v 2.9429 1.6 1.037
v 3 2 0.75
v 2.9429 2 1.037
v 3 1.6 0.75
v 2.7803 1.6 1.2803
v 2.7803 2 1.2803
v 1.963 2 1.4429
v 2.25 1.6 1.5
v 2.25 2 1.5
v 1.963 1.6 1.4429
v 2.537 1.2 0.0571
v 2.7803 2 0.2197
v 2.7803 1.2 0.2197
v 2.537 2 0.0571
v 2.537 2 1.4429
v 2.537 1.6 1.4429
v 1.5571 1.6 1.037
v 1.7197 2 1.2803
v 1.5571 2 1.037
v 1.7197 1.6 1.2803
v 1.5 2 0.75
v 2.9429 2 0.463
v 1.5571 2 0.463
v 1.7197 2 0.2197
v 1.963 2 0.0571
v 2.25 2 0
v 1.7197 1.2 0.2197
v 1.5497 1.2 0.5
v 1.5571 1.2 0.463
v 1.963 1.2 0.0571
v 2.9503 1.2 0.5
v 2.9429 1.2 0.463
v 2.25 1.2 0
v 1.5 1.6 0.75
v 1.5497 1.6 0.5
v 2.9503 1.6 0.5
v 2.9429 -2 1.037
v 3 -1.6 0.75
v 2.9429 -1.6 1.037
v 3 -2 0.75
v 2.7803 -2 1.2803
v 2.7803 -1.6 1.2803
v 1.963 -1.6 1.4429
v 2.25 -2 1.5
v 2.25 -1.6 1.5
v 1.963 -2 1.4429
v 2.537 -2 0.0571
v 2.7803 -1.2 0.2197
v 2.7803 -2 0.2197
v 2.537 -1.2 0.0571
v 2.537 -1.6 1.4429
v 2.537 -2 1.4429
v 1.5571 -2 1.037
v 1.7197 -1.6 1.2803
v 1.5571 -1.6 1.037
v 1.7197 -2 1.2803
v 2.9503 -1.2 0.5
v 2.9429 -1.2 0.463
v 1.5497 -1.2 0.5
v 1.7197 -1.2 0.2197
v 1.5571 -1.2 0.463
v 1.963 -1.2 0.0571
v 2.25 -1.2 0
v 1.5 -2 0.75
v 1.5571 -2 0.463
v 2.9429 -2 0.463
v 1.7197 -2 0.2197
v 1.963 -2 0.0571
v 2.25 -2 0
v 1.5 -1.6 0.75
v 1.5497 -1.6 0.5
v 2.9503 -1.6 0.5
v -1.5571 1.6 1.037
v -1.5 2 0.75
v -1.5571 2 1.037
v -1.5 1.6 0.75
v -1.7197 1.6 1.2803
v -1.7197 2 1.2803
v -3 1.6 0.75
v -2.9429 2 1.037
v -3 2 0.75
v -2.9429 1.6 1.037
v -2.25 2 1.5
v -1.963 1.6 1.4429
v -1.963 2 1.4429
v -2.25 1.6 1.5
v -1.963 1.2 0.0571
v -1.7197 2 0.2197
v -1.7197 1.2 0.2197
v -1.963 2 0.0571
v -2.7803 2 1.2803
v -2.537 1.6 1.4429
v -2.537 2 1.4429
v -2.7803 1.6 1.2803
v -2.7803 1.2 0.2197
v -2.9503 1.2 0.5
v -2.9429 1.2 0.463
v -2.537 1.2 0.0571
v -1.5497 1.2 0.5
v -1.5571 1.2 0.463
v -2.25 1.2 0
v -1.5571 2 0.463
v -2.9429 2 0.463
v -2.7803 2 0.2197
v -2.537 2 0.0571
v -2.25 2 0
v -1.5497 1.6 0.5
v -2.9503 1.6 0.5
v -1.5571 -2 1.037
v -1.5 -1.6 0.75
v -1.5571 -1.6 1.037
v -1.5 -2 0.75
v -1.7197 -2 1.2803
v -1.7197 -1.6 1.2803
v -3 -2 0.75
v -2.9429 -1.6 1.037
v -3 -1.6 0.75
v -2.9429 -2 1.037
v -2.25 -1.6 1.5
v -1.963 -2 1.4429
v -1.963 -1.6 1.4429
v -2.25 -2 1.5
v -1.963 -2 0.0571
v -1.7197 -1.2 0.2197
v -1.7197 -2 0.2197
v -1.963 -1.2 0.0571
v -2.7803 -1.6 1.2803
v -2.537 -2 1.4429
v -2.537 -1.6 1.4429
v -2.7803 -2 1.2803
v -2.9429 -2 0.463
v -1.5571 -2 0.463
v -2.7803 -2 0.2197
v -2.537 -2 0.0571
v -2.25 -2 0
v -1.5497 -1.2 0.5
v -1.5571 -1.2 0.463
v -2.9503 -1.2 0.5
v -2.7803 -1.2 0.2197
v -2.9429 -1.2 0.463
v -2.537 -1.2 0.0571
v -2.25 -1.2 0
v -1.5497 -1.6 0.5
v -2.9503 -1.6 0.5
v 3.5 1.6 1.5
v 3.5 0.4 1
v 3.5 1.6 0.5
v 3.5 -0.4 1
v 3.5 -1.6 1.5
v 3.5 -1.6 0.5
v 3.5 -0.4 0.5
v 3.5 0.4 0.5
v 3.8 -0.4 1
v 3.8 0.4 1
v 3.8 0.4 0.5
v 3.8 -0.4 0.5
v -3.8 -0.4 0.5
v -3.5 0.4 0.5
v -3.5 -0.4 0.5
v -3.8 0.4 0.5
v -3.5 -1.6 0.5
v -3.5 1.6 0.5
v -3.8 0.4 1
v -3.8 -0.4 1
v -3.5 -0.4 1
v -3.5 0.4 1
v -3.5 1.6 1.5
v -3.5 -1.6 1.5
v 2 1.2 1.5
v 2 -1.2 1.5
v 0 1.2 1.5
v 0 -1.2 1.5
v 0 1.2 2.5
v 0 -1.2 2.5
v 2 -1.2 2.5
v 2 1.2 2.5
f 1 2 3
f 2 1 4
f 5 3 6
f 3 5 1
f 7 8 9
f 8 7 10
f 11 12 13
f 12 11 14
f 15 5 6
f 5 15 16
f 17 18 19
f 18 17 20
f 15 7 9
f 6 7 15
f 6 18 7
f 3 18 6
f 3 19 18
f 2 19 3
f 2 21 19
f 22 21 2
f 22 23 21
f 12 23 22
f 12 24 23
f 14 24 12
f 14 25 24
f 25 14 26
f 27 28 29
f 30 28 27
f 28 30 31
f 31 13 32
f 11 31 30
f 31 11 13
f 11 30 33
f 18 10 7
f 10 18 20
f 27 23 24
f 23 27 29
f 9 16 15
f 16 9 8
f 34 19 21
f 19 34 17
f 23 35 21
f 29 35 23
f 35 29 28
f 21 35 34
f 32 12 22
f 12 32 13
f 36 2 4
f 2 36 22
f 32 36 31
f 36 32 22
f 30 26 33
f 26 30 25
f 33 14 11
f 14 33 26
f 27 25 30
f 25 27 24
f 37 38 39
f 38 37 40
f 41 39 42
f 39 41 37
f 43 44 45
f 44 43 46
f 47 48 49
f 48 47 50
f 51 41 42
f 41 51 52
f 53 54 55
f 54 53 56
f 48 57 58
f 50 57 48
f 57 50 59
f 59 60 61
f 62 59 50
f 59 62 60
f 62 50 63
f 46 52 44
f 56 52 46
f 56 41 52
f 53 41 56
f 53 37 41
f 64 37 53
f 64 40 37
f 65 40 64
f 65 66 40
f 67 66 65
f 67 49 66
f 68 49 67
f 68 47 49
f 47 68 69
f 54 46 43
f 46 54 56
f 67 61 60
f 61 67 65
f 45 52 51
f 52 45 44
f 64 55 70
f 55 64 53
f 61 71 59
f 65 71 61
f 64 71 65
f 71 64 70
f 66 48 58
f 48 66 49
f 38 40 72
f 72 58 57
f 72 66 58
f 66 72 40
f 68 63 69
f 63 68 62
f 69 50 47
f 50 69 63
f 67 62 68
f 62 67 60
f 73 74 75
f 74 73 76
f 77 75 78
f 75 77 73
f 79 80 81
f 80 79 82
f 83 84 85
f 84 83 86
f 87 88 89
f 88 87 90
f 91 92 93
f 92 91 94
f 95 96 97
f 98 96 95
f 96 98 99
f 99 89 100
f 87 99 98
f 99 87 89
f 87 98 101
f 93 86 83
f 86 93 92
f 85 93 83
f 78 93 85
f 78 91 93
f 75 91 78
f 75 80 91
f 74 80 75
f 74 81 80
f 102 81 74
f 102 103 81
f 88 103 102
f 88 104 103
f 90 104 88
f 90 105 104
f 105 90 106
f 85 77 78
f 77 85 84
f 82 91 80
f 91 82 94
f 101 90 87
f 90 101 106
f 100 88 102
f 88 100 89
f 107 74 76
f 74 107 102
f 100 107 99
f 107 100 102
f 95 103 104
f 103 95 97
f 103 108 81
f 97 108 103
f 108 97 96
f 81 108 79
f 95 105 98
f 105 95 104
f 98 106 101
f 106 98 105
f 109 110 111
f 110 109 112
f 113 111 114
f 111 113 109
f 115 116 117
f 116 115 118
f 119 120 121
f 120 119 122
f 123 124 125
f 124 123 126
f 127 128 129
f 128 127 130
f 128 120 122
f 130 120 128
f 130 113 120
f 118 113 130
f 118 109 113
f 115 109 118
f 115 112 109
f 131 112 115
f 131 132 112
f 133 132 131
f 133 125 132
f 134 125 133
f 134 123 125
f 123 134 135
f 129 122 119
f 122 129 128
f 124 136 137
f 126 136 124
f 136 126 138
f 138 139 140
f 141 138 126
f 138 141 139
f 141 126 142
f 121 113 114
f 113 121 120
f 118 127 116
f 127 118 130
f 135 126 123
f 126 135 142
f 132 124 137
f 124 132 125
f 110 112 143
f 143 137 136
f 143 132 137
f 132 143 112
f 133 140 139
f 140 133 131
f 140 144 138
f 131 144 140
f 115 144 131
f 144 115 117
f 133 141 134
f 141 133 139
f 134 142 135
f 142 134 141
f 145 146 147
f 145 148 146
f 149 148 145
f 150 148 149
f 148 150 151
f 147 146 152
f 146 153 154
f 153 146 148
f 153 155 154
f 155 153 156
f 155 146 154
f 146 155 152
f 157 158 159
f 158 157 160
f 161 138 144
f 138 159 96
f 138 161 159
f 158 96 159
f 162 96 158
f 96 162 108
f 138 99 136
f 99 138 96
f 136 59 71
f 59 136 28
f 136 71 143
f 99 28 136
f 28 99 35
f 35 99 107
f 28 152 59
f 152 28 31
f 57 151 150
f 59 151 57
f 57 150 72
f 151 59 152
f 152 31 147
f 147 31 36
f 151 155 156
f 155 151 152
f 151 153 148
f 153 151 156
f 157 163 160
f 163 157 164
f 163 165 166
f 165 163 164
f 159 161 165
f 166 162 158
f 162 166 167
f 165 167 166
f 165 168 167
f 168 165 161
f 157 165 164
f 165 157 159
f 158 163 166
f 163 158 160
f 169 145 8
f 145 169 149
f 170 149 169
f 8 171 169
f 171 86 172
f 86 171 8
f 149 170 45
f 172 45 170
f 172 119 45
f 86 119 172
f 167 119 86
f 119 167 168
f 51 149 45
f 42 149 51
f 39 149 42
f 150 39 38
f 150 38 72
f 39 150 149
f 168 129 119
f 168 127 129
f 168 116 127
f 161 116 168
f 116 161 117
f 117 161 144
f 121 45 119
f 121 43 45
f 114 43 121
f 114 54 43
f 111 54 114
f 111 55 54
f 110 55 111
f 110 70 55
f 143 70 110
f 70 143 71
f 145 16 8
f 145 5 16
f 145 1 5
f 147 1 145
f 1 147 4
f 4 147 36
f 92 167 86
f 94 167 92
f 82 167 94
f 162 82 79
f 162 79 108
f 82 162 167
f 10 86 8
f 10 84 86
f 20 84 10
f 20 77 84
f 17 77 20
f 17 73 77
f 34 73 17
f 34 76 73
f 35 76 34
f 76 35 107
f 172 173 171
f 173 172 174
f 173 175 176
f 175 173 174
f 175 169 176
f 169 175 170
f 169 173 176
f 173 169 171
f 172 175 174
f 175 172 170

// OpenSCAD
// Airport Pushback Tractor

module pushback_tractor() {

    body_length = 7.0;
    body_width = 3.2;
    body_height = 1.0;
    ground_clearance = 0.5;
    
    cab_length = 2.0;
    cab_width = 2.4;
    cab_height = 1.0;
    
    wheel_radius = 0.75;
    wheel_width = 0.8;
    wheelbase_x = 4.5;
    track_y = 3.2; 

    union() {
        color("Gold") 
        translate([0, 0, ground_clearance + (body_height / 2)])
            cube([body_length, body_width, body_height], center=true);

        color("DarkSlateGray") 
        translate([1.0, 0, ground_clearance + body_height + (cab_height / 2)])
            cube([cab_length, cab_width, cab_height], center=true);

        //Wheels
        color("#222222") {
            // Left
            translate([wheelbase_x / 2, track_y / 2, wheel_radius])
                rotate([90, 0, 0])
                cylinder(h=wheel_width, r=wheel_radius, center=true, $fn=16);

            // Right
            translate([wheelbase_x / 2, -track_y / 2, wheel_radius])
                rotate([90, 0, 0])
                cylinder(h=wheel_width, r=wheel_radius, center=true, $fn=16);

            // Rear Left
            translate([-wheelbase_x / 2, track_y / 2, wheel_radius])
                rotate([90, 0, 0])
                cylinder(h=wheel_width, r=wheel_radius, center=true, $fn=16);

            // Rear Right
            translate([-wheelbase_x / 2, -track_y / 2, wheel_radius])
                rotate([90, 0, 0])
                cylinder(h=wheel_width, r=wheel_radius, center=true, $fn=16);
        }

        color("DimGray") {
            // Front Hitch
            translate([(body_length / 2) + 0.15, 0, ground_clearance + 0.25])
                cube([0.3, 0.8, 0.5], center=true);
                
            // Rear Hitch
            translate([-(body_length / 2) - 0.15, 0, ground_clearance + 0.25])
                cube([0.3, 0.8, 0.5], center=true);
        }
    }
}

pushback_tractor();
